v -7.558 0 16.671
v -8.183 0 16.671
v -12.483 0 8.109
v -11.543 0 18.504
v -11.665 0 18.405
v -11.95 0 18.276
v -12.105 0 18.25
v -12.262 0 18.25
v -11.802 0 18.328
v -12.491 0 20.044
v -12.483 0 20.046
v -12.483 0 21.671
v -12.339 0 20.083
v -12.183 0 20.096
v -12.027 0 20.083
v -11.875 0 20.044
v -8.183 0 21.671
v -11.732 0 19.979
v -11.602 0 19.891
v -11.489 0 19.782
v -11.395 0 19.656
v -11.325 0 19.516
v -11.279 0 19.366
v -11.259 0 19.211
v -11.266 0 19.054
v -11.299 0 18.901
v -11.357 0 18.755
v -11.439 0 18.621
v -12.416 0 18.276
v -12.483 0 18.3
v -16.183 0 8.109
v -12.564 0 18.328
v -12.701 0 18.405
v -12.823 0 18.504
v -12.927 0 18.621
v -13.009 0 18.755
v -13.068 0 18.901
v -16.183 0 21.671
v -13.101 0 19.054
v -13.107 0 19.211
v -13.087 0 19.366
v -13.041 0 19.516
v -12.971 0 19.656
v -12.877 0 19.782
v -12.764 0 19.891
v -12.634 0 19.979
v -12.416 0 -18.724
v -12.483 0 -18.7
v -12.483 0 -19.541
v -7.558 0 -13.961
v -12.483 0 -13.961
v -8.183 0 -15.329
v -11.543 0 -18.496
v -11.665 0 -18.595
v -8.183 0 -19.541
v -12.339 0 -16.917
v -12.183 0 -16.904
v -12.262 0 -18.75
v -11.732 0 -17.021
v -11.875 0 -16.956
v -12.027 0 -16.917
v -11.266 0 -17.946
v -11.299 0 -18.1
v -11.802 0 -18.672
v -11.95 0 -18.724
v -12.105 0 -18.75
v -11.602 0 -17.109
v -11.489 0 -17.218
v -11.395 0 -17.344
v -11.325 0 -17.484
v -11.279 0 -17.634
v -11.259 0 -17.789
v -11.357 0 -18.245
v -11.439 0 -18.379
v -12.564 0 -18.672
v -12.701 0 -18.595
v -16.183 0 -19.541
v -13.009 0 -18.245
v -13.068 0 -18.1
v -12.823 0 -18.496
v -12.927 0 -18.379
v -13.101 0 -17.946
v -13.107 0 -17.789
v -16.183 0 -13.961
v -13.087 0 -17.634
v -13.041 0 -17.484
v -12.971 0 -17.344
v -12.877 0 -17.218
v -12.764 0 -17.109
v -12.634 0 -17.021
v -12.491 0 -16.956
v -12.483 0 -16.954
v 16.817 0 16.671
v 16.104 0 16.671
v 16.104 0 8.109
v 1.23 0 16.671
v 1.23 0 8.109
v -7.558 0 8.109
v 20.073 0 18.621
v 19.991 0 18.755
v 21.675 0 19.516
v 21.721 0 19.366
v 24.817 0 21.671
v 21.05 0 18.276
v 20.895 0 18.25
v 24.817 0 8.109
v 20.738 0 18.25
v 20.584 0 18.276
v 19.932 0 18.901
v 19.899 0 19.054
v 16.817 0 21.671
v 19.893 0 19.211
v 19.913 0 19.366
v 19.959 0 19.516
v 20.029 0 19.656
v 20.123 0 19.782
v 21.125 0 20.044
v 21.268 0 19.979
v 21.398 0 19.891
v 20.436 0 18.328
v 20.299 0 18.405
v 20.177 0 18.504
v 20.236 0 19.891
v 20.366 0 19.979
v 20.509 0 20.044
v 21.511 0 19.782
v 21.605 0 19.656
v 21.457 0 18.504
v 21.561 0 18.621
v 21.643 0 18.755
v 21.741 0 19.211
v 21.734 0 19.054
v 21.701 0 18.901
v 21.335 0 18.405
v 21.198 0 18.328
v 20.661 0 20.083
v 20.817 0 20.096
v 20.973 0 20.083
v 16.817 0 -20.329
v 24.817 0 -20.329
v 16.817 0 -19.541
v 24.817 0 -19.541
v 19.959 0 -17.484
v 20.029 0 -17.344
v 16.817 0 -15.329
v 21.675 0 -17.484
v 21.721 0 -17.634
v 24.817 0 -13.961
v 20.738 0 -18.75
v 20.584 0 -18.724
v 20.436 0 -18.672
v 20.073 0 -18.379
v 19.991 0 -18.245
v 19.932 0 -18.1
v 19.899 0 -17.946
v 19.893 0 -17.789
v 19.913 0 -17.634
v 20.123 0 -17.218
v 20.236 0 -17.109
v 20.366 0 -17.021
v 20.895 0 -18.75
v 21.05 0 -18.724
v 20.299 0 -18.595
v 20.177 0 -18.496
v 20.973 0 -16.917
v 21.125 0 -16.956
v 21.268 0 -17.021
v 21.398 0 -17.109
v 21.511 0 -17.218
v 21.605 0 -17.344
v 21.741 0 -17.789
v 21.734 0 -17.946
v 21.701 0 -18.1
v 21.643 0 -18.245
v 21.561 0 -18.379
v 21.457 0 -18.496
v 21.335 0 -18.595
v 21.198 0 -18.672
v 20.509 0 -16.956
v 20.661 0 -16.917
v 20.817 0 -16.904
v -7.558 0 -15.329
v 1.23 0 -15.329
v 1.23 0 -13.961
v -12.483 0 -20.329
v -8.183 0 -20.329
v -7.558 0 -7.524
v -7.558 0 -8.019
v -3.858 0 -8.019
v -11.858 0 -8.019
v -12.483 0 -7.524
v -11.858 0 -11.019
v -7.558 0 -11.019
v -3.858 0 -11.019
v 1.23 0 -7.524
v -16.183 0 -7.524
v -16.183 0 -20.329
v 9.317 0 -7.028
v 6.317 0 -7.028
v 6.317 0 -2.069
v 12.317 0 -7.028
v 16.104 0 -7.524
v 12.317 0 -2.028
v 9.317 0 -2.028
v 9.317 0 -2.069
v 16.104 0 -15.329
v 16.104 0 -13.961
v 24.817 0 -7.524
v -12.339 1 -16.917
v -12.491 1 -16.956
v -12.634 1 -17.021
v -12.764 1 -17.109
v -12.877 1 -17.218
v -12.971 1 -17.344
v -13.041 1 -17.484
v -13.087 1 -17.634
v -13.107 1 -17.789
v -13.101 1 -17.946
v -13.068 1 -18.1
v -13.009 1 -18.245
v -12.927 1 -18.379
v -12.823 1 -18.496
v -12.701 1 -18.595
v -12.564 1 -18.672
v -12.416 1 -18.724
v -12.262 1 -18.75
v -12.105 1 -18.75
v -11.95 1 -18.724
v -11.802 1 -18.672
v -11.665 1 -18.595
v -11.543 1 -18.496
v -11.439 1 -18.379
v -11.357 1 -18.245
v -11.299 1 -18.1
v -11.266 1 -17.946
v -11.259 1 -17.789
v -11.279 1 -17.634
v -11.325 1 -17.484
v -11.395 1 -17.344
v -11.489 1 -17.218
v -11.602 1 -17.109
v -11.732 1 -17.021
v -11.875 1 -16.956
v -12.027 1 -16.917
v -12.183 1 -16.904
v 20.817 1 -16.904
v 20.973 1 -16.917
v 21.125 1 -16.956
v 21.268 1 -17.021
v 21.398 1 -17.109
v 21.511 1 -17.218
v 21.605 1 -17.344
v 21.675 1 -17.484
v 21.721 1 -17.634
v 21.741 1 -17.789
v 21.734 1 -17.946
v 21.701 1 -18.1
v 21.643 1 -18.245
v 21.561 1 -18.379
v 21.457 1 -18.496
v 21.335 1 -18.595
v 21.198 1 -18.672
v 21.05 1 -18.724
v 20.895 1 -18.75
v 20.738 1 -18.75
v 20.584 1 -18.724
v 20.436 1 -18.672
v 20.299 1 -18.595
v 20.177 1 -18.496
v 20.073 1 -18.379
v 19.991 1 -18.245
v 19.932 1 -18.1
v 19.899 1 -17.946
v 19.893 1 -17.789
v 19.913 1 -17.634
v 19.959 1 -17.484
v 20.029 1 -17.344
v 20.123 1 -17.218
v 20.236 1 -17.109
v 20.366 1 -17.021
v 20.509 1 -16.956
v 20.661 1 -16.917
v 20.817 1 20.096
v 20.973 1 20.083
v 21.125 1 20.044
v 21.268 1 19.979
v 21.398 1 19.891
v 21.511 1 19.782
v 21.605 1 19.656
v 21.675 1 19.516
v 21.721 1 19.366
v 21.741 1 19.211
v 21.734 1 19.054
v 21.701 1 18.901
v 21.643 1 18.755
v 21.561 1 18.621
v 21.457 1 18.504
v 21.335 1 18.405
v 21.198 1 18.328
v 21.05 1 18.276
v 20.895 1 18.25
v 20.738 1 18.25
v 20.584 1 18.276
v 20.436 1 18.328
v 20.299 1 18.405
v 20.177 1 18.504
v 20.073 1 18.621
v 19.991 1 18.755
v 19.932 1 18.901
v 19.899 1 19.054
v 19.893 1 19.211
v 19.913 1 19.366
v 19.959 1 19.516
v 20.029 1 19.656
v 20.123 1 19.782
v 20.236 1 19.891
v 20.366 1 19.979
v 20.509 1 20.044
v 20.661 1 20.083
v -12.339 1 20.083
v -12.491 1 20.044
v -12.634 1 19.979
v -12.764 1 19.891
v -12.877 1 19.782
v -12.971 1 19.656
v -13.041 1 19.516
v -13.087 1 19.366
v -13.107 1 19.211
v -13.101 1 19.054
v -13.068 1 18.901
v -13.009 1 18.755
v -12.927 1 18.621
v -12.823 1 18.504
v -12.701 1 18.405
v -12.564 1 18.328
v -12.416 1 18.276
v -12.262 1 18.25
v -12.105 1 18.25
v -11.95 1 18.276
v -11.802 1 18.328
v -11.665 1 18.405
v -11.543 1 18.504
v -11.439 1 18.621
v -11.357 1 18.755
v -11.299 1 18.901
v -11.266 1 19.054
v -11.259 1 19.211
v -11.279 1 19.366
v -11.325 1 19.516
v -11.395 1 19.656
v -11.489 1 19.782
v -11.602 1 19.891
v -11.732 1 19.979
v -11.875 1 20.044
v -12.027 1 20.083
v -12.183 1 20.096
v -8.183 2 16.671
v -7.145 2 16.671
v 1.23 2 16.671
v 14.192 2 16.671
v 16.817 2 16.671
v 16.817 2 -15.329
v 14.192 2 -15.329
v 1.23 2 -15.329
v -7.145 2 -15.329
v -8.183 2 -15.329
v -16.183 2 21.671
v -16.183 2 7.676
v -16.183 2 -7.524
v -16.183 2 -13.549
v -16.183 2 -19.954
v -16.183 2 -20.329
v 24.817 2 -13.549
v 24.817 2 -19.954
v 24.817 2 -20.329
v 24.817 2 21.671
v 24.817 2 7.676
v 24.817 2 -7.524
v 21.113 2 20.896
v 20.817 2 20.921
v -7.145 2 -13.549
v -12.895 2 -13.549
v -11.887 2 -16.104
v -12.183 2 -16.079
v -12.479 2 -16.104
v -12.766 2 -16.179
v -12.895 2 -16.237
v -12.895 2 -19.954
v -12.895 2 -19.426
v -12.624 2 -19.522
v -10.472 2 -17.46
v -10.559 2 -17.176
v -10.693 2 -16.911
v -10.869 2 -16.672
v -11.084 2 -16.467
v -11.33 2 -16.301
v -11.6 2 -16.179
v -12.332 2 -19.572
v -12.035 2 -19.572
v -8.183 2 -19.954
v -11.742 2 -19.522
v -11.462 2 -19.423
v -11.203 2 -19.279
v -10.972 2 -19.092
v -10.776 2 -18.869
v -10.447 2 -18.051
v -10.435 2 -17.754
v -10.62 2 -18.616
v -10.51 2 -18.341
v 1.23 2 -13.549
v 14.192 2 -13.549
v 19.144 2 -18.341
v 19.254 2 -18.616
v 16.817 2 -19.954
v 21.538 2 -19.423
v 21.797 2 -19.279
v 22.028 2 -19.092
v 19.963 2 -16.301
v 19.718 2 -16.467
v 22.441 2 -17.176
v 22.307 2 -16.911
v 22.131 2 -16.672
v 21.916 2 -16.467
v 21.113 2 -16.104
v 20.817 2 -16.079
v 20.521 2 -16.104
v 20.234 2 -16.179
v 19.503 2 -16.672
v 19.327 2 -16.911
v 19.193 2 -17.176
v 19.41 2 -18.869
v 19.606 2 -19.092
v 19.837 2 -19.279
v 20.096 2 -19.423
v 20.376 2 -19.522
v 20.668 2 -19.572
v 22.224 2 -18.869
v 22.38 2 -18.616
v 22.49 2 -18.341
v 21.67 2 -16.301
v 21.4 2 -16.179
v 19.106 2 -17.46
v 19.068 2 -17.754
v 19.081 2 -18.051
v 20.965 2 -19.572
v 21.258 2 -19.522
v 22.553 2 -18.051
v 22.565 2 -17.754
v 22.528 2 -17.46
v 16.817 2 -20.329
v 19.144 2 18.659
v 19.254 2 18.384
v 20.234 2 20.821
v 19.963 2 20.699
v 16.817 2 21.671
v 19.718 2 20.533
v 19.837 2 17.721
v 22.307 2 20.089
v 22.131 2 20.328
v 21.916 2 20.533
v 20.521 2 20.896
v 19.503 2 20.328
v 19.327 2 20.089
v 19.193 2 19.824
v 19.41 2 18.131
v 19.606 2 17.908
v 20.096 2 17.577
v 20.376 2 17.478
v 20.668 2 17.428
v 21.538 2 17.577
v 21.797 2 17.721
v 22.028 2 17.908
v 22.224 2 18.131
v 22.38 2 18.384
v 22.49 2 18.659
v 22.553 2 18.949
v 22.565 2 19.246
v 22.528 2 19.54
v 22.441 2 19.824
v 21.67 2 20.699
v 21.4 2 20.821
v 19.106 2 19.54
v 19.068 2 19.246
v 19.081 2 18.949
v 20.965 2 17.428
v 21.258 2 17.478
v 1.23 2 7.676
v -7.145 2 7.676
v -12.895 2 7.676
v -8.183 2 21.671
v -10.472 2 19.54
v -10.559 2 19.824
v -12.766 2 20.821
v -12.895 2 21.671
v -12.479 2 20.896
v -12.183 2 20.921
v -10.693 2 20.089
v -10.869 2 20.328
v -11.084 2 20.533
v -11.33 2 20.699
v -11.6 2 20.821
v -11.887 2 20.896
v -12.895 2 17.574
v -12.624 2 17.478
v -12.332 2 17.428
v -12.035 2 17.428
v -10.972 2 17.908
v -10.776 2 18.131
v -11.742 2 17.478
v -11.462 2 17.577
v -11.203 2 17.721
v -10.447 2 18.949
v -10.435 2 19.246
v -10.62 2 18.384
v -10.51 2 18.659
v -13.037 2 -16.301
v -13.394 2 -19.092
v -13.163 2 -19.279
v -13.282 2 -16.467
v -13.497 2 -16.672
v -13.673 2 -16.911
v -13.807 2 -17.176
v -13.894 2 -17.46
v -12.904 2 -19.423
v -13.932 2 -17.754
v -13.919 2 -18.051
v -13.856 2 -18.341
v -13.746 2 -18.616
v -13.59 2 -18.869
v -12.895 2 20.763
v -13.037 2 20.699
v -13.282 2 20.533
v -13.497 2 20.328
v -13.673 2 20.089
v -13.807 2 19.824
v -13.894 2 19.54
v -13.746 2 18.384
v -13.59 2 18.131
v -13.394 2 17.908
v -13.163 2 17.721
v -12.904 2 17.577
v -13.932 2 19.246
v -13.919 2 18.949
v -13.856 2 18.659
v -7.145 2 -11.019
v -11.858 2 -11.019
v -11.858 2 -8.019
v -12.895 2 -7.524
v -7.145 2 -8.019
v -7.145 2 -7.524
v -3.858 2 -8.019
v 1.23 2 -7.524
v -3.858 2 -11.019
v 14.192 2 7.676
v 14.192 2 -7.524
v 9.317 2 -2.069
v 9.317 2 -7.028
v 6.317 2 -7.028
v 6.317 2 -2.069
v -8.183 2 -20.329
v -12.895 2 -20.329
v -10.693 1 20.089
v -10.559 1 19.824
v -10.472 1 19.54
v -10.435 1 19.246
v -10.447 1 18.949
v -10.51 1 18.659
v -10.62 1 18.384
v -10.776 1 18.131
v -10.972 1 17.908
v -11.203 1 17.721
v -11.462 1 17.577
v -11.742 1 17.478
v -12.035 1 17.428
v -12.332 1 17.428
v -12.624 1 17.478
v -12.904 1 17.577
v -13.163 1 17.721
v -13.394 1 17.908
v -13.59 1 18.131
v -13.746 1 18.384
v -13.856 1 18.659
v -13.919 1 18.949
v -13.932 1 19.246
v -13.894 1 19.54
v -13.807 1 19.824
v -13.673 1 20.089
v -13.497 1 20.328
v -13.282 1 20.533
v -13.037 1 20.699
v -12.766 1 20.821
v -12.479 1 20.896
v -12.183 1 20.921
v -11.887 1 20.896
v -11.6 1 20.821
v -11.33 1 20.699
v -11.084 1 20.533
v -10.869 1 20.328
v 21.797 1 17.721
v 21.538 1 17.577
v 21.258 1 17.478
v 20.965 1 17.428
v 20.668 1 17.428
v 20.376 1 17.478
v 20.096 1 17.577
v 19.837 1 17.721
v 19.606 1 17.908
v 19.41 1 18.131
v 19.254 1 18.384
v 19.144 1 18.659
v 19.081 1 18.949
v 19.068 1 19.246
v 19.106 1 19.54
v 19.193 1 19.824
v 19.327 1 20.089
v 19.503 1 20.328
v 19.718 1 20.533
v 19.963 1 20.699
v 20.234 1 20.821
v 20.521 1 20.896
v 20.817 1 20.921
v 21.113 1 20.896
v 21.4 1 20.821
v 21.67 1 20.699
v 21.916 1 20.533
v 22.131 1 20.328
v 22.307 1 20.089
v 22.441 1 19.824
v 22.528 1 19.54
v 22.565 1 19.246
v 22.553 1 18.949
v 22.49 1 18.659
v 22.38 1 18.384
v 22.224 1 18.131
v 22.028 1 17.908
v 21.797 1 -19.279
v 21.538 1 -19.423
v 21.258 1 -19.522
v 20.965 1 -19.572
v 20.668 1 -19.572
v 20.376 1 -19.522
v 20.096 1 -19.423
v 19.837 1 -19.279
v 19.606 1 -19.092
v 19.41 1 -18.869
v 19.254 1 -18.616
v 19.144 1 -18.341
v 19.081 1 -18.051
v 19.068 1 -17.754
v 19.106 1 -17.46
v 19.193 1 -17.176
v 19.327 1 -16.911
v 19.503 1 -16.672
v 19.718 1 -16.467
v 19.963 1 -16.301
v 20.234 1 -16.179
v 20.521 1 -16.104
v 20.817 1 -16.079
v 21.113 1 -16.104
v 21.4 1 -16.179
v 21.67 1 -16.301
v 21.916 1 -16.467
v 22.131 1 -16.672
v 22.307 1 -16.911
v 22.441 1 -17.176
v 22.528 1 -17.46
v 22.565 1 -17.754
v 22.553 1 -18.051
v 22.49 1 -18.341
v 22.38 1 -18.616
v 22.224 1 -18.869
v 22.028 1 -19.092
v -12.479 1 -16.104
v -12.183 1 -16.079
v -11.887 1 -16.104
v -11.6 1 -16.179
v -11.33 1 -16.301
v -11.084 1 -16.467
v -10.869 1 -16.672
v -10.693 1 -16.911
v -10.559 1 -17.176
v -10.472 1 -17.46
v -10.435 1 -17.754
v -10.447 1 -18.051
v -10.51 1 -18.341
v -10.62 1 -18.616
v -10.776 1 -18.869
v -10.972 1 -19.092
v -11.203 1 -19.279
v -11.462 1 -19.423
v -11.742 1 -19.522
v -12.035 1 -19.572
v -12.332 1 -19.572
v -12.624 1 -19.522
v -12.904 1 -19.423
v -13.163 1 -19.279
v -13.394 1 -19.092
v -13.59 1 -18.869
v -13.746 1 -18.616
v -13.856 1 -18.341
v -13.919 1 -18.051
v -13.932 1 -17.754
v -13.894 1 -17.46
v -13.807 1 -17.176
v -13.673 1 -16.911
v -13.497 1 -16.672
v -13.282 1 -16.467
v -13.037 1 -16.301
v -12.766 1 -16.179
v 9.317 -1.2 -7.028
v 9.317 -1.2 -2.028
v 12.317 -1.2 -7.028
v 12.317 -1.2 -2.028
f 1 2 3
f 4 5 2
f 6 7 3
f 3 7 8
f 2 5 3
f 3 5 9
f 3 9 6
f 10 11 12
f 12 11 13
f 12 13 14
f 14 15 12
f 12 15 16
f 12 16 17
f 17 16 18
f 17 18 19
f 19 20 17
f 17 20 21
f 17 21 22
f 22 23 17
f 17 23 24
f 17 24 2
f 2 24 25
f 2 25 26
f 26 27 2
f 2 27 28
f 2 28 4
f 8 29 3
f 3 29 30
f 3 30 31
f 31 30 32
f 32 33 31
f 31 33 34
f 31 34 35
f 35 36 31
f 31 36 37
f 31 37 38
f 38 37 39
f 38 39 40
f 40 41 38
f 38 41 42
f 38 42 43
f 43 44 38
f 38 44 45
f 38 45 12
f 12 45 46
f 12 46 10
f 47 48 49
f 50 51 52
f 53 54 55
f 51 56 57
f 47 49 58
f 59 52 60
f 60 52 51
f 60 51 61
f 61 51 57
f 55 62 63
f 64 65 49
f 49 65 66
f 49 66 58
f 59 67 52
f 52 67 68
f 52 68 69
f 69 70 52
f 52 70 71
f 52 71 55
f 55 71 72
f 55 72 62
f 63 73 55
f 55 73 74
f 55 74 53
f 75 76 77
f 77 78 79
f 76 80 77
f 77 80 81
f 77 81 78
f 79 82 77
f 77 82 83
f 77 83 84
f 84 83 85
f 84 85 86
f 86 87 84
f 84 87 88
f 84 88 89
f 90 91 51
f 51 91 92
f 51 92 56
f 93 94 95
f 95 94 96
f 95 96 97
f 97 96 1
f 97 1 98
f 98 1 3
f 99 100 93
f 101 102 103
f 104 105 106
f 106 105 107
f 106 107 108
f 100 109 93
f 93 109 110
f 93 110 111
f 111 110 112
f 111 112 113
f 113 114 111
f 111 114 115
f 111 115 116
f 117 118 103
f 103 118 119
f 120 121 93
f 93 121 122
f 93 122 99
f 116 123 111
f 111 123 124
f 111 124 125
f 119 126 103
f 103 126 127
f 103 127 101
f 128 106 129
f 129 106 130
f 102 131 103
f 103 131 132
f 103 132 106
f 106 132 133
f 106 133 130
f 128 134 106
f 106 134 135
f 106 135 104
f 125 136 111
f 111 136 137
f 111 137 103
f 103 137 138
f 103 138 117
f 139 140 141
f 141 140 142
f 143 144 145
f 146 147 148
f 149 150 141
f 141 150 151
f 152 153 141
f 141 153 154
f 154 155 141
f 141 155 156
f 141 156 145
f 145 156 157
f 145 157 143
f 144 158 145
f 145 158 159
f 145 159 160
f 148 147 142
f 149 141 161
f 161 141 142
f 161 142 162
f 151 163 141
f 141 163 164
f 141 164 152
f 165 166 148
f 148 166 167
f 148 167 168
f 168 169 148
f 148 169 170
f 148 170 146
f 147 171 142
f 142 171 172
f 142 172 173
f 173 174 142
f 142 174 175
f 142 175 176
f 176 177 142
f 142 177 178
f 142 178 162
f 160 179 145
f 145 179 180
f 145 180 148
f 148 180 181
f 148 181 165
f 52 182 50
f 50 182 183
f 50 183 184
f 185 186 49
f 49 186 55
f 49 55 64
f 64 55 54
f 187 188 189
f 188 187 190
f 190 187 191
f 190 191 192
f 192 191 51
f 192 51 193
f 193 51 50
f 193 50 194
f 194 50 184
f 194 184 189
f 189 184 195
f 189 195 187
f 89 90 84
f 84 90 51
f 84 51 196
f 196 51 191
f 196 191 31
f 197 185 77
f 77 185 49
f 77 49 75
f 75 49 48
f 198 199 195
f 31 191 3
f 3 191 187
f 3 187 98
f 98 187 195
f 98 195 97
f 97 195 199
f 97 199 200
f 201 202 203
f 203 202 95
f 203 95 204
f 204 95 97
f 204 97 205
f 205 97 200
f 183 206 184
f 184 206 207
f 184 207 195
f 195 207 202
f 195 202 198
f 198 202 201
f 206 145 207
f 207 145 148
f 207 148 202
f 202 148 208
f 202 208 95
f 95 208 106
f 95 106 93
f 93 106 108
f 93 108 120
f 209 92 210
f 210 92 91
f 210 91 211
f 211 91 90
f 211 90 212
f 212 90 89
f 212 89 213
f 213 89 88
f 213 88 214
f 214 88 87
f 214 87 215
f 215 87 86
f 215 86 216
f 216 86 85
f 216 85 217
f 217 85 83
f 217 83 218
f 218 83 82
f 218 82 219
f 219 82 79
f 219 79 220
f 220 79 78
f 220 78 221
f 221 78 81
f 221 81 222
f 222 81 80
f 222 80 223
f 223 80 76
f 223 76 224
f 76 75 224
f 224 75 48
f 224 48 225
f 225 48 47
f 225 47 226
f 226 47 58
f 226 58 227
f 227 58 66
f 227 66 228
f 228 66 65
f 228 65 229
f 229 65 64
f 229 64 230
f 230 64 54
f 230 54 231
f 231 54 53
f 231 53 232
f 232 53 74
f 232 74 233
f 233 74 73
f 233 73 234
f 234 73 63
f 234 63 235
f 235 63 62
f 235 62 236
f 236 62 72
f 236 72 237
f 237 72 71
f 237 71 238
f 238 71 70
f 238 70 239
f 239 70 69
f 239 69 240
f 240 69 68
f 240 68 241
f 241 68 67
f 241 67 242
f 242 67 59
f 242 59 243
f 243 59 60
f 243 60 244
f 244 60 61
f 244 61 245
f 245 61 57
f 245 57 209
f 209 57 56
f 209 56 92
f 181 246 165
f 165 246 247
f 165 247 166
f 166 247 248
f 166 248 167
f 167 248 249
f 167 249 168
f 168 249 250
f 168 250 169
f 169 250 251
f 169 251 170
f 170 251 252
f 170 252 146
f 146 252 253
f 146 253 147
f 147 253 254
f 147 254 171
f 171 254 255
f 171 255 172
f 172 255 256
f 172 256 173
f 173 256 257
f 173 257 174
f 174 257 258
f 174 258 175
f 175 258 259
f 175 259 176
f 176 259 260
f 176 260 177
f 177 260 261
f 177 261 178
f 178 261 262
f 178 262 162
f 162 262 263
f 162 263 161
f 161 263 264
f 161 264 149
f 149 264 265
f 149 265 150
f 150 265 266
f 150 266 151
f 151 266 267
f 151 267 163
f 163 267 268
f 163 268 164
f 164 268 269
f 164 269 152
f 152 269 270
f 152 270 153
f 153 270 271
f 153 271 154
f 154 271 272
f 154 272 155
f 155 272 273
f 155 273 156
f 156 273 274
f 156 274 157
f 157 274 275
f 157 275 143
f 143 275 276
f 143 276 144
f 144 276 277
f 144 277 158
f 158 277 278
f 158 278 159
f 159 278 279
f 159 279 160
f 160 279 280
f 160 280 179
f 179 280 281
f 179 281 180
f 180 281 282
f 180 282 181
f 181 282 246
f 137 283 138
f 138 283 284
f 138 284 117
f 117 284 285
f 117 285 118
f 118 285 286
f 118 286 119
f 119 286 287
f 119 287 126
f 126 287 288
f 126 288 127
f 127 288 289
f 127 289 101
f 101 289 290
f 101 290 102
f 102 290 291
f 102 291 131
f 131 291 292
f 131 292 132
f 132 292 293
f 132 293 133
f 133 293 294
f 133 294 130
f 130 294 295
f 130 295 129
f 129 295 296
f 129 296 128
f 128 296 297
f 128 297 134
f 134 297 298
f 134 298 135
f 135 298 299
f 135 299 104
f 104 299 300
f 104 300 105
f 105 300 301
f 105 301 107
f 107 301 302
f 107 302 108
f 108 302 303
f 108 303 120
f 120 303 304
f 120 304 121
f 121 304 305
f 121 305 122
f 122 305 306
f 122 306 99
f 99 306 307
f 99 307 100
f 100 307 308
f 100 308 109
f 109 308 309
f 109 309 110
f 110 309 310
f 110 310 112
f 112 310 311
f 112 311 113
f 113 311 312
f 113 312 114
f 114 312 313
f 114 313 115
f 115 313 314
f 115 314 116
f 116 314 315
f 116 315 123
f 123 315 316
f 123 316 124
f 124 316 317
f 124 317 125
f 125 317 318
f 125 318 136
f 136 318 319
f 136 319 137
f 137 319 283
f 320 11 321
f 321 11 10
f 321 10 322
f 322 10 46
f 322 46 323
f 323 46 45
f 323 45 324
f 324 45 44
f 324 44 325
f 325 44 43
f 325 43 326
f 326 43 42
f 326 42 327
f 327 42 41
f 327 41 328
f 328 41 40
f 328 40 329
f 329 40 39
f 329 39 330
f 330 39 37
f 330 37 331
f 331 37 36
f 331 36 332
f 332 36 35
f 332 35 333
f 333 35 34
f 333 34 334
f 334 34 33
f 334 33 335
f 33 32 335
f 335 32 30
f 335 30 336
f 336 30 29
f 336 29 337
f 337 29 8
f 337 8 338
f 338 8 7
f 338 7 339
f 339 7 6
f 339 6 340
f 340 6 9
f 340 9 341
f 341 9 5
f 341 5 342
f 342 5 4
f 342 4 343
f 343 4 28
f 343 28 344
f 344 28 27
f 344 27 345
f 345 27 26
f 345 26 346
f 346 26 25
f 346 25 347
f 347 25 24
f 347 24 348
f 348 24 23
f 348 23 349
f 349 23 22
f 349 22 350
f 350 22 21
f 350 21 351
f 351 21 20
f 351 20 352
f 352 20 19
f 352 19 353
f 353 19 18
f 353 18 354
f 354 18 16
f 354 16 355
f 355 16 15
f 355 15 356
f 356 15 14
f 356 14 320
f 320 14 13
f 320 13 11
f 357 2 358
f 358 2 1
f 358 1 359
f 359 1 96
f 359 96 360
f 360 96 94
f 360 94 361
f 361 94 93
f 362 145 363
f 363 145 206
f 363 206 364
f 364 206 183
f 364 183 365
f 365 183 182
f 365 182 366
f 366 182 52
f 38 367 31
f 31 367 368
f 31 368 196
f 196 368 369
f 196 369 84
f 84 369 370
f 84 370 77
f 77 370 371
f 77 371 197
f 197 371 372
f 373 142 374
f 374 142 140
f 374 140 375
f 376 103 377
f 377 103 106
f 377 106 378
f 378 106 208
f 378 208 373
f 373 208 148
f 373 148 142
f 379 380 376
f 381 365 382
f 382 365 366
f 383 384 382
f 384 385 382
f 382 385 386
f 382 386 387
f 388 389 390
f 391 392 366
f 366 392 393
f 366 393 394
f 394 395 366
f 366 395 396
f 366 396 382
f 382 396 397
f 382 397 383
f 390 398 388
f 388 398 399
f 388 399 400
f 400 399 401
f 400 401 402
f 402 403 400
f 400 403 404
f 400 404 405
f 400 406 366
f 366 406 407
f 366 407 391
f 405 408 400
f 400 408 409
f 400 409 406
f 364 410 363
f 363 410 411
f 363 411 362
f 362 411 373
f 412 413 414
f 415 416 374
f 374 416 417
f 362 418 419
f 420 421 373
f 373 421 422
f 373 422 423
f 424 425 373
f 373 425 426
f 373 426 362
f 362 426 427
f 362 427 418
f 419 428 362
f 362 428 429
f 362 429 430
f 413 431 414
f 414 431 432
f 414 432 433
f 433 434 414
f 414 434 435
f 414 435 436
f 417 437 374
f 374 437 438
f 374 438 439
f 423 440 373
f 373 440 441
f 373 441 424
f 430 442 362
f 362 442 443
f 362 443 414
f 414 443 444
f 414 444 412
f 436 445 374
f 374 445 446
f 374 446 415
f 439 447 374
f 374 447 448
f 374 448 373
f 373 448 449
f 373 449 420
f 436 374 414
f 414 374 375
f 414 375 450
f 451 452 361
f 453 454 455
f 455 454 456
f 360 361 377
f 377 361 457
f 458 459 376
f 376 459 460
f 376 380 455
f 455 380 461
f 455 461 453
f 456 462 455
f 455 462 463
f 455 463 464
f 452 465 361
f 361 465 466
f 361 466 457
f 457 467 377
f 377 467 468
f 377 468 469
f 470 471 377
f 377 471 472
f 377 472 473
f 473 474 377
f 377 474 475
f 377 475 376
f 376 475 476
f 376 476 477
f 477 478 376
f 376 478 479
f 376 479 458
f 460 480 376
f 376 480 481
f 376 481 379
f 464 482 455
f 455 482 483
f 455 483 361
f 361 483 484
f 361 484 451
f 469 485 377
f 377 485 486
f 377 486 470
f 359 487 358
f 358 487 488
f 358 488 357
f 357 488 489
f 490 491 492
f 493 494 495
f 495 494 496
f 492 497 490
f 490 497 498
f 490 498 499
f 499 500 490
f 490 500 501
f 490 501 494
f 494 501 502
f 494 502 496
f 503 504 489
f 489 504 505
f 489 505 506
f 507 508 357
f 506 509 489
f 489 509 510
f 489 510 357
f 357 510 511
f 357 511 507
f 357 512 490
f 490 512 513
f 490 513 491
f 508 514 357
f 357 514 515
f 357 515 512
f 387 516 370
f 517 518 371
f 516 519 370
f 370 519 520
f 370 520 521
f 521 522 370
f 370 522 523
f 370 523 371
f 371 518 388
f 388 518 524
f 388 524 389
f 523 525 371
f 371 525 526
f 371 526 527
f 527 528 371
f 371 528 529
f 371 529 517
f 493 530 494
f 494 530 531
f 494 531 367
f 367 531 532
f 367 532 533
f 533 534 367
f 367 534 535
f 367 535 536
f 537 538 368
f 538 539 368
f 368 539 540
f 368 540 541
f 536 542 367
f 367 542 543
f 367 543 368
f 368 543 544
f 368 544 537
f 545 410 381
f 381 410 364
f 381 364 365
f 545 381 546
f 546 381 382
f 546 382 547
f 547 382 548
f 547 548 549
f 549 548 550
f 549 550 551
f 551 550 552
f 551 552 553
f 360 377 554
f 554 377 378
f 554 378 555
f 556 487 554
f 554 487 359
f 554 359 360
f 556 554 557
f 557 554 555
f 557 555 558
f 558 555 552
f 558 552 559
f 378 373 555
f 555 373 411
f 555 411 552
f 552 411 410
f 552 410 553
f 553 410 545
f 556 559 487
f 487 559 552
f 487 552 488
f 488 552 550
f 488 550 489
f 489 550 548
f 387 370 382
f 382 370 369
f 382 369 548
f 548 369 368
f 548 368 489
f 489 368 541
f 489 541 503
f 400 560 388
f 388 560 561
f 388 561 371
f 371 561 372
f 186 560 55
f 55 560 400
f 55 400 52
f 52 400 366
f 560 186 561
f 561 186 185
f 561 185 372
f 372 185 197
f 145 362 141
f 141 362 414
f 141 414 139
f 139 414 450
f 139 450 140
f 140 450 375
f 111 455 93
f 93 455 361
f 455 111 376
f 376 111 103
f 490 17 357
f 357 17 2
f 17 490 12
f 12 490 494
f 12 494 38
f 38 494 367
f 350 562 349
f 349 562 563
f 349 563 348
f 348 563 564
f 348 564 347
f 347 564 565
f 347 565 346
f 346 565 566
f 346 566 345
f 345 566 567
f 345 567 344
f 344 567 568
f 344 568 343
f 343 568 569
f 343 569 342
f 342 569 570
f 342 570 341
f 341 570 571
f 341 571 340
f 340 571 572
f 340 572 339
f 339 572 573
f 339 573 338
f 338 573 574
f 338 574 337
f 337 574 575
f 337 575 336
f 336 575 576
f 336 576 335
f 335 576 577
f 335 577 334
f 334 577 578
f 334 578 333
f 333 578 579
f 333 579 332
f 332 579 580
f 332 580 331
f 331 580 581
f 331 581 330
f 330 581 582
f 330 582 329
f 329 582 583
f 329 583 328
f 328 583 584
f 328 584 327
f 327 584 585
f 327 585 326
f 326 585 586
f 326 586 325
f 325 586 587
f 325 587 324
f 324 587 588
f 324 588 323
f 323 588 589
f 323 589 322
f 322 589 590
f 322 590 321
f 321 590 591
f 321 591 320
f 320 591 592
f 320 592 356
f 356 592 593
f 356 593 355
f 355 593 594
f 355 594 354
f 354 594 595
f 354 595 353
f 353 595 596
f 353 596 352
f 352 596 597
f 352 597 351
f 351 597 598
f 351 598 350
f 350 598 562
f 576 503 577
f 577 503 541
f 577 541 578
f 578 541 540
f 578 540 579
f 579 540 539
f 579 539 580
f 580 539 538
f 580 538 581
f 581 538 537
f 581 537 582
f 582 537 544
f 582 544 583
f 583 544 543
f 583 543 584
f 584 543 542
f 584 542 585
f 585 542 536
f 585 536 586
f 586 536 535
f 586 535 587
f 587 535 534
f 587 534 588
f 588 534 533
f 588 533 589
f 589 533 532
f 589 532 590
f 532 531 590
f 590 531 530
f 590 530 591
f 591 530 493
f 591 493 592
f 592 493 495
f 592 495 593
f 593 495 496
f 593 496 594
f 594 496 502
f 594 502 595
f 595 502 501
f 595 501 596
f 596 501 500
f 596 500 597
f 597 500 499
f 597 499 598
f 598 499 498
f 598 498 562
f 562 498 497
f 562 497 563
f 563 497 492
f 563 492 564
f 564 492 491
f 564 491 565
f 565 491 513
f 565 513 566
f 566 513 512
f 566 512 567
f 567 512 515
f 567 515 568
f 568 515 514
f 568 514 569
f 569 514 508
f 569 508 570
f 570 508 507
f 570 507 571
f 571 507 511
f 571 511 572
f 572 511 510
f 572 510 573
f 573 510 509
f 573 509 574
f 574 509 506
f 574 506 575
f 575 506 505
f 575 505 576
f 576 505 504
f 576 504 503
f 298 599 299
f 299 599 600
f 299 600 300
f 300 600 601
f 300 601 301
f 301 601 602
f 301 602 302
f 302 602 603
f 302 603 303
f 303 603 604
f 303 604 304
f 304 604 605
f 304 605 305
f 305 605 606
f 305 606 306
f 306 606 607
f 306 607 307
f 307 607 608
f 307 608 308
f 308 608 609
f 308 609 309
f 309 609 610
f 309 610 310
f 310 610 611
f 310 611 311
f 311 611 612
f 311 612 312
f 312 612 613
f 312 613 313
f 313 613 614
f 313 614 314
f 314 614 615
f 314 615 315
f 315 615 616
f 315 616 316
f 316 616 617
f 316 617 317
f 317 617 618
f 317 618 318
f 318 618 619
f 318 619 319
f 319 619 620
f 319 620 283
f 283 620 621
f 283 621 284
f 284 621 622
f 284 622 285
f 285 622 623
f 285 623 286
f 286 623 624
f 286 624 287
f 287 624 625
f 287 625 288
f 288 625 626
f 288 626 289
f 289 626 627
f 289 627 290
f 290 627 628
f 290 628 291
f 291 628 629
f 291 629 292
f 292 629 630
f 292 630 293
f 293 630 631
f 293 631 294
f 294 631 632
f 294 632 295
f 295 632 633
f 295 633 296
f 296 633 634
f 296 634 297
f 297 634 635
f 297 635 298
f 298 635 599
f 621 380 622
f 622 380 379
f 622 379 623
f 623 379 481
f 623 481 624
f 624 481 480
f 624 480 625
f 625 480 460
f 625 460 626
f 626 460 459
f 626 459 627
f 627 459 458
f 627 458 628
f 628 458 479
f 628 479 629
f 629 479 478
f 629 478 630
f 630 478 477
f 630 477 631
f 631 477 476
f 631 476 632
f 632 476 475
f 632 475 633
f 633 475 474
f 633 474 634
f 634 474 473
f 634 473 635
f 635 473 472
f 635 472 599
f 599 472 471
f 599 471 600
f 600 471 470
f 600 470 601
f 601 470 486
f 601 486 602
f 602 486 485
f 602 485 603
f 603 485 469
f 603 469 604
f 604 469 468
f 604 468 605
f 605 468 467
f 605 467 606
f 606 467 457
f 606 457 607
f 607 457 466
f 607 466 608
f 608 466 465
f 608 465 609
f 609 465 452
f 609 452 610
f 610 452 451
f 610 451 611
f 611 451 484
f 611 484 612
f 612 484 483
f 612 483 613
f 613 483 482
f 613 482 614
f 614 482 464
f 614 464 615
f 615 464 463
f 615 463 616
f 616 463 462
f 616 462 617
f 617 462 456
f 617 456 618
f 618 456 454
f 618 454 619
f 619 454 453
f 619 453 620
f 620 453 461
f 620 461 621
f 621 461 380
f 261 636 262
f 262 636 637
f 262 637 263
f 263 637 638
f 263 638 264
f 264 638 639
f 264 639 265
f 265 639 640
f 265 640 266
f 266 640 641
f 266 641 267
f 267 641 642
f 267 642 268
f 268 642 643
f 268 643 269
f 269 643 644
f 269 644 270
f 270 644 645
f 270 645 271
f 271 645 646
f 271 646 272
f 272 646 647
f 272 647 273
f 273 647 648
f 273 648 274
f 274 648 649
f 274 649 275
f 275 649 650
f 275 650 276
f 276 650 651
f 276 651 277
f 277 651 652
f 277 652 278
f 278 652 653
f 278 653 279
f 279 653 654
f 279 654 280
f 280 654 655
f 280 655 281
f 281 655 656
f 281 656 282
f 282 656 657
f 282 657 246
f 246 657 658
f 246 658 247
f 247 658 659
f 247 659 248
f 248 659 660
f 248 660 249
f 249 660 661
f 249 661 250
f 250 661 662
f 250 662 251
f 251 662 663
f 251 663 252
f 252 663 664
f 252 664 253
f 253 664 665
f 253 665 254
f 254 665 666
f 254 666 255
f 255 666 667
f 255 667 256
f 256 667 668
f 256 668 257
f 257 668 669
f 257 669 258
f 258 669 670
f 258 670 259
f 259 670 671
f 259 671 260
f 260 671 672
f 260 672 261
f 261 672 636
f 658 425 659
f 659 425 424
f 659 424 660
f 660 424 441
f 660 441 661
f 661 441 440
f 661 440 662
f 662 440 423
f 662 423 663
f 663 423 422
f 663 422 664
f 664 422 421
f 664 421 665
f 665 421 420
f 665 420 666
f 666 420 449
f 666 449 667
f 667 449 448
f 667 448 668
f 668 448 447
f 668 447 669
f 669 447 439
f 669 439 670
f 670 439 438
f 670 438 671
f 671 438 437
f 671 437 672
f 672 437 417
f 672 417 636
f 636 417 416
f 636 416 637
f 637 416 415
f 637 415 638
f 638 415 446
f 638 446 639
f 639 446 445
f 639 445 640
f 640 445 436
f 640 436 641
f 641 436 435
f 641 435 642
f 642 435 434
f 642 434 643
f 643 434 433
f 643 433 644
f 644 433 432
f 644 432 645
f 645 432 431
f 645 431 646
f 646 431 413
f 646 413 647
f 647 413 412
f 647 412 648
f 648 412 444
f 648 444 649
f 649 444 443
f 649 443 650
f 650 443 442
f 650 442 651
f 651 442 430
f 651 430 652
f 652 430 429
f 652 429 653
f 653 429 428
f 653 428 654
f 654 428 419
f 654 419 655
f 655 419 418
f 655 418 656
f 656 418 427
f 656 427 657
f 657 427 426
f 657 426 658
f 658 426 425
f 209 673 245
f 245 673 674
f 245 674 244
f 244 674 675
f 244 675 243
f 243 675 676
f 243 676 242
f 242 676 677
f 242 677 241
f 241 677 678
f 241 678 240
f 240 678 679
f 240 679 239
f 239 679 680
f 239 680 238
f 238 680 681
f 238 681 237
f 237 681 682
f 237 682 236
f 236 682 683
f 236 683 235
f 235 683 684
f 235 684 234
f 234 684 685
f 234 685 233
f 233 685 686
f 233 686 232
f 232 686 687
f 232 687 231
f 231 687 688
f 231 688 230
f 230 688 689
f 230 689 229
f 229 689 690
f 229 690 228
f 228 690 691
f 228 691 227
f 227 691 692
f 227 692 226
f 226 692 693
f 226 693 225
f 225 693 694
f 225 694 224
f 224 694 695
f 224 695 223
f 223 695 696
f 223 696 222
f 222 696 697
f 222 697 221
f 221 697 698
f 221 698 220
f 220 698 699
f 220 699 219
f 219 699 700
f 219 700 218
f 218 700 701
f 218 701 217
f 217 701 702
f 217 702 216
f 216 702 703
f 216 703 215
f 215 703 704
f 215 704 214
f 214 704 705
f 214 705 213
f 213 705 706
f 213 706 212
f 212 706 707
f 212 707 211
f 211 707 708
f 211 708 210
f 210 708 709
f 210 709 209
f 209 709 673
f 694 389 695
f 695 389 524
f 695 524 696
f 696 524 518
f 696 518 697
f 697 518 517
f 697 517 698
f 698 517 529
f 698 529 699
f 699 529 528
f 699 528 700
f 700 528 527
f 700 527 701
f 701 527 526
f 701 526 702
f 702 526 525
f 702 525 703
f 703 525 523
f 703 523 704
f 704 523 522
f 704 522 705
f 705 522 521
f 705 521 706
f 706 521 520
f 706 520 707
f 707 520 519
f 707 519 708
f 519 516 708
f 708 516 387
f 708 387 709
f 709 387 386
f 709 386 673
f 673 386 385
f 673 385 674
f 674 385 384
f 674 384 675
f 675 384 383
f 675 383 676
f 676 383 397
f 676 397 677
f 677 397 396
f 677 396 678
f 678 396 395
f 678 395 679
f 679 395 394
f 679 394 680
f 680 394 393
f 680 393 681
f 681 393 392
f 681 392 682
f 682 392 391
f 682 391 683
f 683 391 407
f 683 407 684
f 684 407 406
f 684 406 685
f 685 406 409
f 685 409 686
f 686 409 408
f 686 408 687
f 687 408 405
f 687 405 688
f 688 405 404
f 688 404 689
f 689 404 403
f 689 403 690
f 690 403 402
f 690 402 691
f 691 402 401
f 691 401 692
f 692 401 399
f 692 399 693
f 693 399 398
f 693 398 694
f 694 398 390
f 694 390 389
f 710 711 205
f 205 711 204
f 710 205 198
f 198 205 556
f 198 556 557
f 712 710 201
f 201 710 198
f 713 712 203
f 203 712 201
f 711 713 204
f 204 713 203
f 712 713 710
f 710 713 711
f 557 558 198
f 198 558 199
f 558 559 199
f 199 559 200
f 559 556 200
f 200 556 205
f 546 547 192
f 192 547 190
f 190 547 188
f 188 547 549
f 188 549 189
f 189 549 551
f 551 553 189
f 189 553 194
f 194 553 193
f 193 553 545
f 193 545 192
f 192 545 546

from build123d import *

# Parameters (mm, degrees)
SKETCH1_W           = 35
SKETCH1_H           = 26
BOSS_EXTRUDE1_DEPTH = 2
SKETCH2_W           = 41
SKETCH2_H           = 32
BOSS_EXTRUDE3_DEPTH = 2
SKETCH4_W           = 8
SKETCH4_H           = 2
BOSS_EXTRUDE4_DEPTH = 5
SKETCH5_W           = 8
SKETCH5_H           = 2
BOSS_EXTRUDE5_DEPTH = 5
SKETCH6_R           = 0.925
CUT_EXTRUDE1_DEPTH  = 5
SKETCH7_R           = 1.75
CUT_EXTRUDE2_DEPTH  = 1
SKETCH8_W           = 3
SKETCH8_H           = 5
BOSS_EXTRUDE6_DEPTH = 1.2
SKETCH9_W           = 3
SKETCH9_H           = 4.959490372
SKETCH9_W_2         = 8
SKETCH9_H_2         = 3
CUT_EXTRUDE3_DEPTH  = 2


with BuildPart() as part:
    # Sketch1 → Boss-Extrude1 (new body)
    with BuildSketch(Plane(origin=(0, 0, 0), x_dir=(1, 0, 0), z_dir=(0, 1, 0))):
        with Locations((4.316901408, -0.671361502)):
            Rectangle(SKETCH1_W, SKETCH1_H)
    extrude(amount=BOSS_EXTRUDE1_DEPTH)

    # Sketch2 → Boss-Extrude3 (add)
    with BuildSketch(Plane(origin=(0, 2, 0), x_dir=(1, 0, 0), z_dir=(0, 1, 0))):
        with Locations((4.316901408, -0.671361502)):
            Rectangle(SKETCH2_W, SKETCH2_H)
    extrude(amount=-BOSS_EXTRUDE3_DEPTH)

    # Sketch4 → Boss-Extrude4 (add)
    with BuildSketch(Plane(origin=(0, 0, -15.328638498), x_dir=(-1, 0, 0), z_dir=(0, 0, -1))):
        with Locations((12.183098592, 1)):
            Rectangle(SKETCH4_W, SKETCH4_H)
        with Locations((-20.816901408, 1)):
            Rectangle(SKETCH4_W, SKETCH4_H)
    extrude(amount=BOSS_EXTRUDE4_DEPTH)

    # Sketch5 → Boss-Extrude5 (add)
    with BuildSketch(Plane.XY.offset(16.671361502)):
        with Locations((20.816901408, 1)):
            Rectangle(SKETCH5_W, SKETCH5_H)
        with Locations((-12.183098592, 1)):
            Rectangle(SKETCH5_W, SKETCH5_H)
    extrude(amount=BOSS_EXTRUDE5_DEPTH)

    # Sketch6 → Cut-Extrude1 (cut)
    with BuildSketch(Plane(origin=(0, 2, 0), x_dir=(1, 0, 0), z_dir=(0, 1, 0))):
        with Locations((-12.183098592, 17.828638498)):
            Circle(SKETCH6_R)
        with Locations((20.816901408, 17.828638498)):
            Circle(SKETCH6_R)
        with Locations((20.816901408, -19.171361502)):
            Circle(SKETCH6_R)
        with Locations((-12.183098592, -19.171361502)):
            Circle(SKETCH6_R)
    extrude(amount=-CUT_EXTRUDE1_DEPTH, mode=Mode.SUBTRACT)

    # Sketch7 → Cut-Extrude2 (cut)
    with BuildSketch(Plane(origin=(0, 2, 0), x_dir=(1, 0, 0), z_dir=(0, 1, 0))):
        with Locations((-12.183098592, 17.828638498)):
            Circle(SKETCH7_R)
        with Locations((20.816901408, 17.828638498)):
            Circle(SKETCH7_R)
        with Locations((20.816901408, -19.171361502)):
            Circle(SKETCH7_R)
        with Locations((-12.183098592, -19.171361502)):
            Circle(SKETCH7_R)
    extrude(amount=-CUT_EXTRUDE2_DEPTH, mode=Mode.SUBTRACT)

    # Sketch8 → Boss-Extrude6 (add)
    with BuildSketch(Plane.XZ):
        with Locations((10.816901408, -4.528382577)):
            Rectangle(SKETCH8_W, SKETCH8_H)
    extrude(amount=BOSS_EXTRUDE6_DEPTH)

    # Sketch9 → Cut-Extrude3 (cut)
    with BuildSketch(Plane.XZ):
        with Locations((7.816901408, -4.548637391)):
            Rectangle(SKETCH9_W, SKETCH9_H)
        with Locations((-7.857851807, -9.519264119)):
            Rectangle(SKETCH9_W_2, SKETCH9_H_2)
    extrude(amount=-CUT_EXTRUDE3_DEPTH, mode=Mode.SUBTRACT)


solid = part.part
